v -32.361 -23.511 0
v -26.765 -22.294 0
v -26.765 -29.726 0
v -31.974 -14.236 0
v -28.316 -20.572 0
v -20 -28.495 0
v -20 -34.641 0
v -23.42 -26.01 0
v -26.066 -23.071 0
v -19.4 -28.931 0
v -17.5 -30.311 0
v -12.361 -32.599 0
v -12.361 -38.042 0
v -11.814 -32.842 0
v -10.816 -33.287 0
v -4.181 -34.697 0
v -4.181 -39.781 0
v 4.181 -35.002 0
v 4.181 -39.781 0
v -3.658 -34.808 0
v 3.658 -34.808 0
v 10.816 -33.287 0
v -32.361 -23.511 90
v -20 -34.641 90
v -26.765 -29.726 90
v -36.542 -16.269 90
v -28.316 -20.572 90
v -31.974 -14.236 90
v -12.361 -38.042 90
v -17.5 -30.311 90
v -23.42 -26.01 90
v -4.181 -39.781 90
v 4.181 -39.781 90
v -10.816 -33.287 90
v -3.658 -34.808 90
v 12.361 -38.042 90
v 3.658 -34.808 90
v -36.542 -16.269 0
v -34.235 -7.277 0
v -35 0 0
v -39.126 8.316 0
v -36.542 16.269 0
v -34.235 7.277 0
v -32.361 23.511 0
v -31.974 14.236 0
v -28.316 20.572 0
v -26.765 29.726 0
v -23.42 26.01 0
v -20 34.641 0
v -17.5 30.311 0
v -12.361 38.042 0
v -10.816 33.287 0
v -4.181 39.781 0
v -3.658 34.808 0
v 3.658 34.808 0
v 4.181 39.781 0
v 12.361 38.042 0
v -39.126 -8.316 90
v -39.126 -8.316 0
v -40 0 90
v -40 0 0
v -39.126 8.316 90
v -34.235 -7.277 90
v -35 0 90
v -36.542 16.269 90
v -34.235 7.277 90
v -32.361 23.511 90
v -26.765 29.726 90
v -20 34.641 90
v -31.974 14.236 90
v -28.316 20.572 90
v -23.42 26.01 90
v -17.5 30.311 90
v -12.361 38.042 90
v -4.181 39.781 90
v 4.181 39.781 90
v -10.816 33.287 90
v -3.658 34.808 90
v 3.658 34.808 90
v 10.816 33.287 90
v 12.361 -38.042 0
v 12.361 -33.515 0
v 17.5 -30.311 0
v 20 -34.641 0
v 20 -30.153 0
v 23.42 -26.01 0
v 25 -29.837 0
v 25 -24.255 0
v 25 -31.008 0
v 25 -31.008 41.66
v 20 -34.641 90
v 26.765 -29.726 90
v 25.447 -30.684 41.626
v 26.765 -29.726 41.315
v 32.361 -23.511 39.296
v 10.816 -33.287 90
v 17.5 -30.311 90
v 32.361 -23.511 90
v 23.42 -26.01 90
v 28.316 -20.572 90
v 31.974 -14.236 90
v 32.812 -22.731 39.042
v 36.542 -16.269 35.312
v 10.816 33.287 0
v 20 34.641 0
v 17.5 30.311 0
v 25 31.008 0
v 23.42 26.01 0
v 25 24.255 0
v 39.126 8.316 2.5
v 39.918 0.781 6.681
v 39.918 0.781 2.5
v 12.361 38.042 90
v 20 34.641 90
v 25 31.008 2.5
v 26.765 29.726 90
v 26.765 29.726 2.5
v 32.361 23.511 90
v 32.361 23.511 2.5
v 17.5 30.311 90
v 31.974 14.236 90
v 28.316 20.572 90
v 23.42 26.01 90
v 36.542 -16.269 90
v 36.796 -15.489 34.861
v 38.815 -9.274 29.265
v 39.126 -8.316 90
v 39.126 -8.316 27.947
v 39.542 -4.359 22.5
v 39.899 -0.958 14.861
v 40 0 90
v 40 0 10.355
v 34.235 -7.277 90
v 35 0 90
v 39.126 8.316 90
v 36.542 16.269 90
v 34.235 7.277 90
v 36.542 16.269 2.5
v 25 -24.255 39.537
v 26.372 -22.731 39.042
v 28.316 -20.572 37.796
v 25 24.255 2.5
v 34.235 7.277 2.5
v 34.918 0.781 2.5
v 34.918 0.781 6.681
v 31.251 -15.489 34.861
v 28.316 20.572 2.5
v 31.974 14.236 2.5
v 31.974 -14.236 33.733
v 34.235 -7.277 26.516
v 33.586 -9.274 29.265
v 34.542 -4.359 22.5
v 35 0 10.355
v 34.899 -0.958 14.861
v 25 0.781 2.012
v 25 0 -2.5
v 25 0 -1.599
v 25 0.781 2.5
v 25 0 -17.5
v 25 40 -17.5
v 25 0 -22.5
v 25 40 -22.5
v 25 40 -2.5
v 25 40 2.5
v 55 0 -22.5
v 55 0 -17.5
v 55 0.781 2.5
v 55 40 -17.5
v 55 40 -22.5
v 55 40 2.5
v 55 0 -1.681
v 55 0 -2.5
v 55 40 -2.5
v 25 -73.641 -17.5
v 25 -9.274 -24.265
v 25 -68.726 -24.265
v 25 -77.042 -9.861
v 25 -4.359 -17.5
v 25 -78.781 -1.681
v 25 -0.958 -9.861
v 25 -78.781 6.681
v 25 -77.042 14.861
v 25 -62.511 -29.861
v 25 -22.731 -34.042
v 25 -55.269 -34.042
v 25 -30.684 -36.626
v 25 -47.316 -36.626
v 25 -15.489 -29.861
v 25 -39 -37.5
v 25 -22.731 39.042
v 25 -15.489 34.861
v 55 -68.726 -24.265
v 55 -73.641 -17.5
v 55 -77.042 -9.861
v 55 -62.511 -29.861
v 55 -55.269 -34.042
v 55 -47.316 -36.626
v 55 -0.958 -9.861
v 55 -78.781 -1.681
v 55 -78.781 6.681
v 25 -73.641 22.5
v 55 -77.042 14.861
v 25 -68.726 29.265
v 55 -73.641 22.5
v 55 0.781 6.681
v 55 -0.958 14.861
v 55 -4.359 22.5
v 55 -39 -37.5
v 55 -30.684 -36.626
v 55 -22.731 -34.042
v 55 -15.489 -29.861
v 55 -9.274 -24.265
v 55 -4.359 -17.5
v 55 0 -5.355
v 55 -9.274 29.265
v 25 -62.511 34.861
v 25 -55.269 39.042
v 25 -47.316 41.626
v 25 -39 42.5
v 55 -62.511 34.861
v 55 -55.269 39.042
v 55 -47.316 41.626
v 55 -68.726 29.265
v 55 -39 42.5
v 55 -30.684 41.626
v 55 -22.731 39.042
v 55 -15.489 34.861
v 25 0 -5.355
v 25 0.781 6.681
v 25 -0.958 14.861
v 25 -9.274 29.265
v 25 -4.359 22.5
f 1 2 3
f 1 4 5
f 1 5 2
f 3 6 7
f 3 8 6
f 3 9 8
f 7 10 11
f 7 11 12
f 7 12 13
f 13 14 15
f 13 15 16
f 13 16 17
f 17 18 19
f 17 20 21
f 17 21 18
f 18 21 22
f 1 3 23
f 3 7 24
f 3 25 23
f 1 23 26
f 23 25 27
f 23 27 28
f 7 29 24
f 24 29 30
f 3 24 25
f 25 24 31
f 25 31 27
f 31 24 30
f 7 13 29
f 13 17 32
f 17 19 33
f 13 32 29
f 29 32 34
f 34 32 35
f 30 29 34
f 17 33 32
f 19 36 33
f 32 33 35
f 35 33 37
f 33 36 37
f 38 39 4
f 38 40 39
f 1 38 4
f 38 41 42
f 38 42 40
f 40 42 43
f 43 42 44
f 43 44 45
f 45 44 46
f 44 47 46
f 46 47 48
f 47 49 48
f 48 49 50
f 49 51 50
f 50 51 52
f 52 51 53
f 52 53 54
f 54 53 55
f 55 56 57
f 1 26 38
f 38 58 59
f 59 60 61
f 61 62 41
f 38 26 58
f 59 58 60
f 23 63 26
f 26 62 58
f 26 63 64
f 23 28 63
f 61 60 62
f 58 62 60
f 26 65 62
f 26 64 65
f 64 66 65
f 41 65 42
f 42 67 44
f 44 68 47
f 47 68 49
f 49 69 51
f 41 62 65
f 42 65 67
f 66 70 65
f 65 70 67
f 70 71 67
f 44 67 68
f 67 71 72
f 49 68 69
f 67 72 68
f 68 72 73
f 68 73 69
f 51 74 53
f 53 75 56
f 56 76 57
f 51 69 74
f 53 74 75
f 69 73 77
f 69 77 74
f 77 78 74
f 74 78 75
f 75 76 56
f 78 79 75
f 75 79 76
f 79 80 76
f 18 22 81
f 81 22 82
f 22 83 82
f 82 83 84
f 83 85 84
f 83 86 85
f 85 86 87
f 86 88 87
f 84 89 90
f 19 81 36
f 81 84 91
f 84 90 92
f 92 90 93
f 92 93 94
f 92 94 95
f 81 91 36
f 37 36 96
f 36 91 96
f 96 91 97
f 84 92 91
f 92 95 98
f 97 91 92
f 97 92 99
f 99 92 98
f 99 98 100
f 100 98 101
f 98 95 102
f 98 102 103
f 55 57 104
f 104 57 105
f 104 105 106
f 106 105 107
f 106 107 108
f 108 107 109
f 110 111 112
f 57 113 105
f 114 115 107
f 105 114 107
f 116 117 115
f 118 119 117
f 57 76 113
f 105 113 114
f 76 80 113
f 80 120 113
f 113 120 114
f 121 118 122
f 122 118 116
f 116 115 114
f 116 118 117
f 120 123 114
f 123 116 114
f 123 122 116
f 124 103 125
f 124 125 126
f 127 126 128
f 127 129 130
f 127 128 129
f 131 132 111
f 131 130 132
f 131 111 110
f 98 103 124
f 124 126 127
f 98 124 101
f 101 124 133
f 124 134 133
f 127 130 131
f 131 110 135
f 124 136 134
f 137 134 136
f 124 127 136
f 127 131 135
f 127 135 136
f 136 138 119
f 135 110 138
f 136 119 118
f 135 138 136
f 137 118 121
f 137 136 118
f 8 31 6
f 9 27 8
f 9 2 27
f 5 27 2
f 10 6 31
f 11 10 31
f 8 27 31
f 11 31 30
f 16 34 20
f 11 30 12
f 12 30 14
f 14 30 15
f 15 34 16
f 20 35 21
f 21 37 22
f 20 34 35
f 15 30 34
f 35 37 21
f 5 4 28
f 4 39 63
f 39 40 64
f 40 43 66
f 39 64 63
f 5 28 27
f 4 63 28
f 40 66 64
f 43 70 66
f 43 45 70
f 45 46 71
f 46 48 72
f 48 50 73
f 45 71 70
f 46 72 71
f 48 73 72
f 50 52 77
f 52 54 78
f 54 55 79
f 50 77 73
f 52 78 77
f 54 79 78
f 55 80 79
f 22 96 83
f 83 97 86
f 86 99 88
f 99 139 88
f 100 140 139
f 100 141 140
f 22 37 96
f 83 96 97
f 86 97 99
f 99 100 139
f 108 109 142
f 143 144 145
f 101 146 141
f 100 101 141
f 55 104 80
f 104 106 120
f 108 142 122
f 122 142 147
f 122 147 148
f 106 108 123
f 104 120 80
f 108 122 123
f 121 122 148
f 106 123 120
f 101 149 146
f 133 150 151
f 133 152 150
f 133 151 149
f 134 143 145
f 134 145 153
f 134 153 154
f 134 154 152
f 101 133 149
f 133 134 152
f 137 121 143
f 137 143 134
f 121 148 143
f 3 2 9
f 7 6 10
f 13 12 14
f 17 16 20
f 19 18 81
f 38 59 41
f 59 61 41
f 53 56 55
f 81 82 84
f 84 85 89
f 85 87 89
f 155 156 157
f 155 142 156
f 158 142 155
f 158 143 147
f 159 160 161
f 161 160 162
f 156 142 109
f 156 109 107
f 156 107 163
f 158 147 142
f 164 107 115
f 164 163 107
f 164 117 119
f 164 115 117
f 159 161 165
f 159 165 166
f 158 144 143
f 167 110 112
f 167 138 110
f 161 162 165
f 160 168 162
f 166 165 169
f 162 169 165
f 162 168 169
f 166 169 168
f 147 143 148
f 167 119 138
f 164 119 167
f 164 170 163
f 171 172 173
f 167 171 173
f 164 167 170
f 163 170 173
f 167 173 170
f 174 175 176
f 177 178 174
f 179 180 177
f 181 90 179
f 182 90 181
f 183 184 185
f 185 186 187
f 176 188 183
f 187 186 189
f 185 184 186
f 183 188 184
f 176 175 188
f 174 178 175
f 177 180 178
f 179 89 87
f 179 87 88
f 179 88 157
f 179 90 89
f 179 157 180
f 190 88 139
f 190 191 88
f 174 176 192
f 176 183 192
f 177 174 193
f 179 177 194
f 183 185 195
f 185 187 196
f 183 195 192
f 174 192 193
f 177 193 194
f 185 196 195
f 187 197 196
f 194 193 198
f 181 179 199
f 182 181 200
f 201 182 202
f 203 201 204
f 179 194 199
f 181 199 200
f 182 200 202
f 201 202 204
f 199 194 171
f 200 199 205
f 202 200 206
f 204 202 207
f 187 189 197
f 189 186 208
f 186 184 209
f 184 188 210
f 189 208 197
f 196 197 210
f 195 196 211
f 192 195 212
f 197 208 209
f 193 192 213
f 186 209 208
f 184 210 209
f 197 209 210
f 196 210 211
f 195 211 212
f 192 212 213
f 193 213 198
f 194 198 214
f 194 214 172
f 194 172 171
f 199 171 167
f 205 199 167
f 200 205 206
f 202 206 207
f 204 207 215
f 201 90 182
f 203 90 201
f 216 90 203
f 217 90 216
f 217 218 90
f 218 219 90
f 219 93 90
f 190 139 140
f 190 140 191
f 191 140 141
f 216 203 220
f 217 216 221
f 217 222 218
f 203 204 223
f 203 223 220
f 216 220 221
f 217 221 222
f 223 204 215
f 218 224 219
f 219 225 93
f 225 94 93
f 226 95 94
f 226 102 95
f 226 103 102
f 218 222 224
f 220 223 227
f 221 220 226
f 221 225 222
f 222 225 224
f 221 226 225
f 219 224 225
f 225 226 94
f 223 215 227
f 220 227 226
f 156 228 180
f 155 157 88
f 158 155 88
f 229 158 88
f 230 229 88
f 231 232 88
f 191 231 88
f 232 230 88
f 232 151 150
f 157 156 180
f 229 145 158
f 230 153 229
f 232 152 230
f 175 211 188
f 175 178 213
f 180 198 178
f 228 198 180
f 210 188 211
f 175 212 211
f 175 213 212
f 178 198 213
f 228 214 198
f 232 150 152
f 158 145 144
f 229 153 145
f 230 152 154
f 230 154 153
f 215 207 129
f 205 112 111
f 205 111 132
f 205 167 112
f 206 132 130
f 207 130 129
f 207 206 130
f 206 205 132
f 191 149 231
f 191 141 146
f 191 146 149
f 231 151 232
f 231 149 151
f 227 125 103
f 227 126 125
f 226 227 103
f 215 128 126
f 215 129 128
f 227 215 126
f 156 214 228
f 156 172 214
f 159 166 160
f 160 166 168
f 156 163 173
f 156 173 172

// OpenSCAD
// マグカップのパラメータ
outer_diameter = 80;
inner_diameter = 70;
height = 90;
bottom_thickness = 6;
handle_width = 25;
handle_height = 30;

// モジュール定義: 円筒形本体
module mug_body() {
  difference() {
    cylinder(h = height, r = outer_diameter / 2);
    translate([0, 0, -1]) cylinder(h = height + 2, r = inner_diameter / 2); // 内側をくり抜く
    translate([0, 0, -bottom_thickness]) cylinder(h = bottom_thickness, r = outer_diameter / 2); // 底面を作る
  }
}

// モジュール定義: D字型の取手
module handle() {
  difference() {
    union() {
      translate([outer_diameter/2 - handle_width/2,0,-handle_height/2]) cube([handle_width, outer_diameter/2, handle_height]);
      translate([outer_diameter/2 - handle_width/2, -outer_diameter/2 + 1, -handle_height/2]) cylinder(r = outer_diameter/2, h=handle_height); // 半円部分をくり抜く
    }

    // 内側空間を作る
    translate([outer_diameter/2 - handle_width/2+5,0,-handle_height/2]) cube([handle_width-10, outer_diameter/2, handle_height]);
  }
}


// メイン処理
union() {
  mug_body();

  translate([outer_diameter / 2, 0, height / 2 - handle_height / 2]) rotate([0,90,0]) handle(); // +X軸方向に取手を配置
}
